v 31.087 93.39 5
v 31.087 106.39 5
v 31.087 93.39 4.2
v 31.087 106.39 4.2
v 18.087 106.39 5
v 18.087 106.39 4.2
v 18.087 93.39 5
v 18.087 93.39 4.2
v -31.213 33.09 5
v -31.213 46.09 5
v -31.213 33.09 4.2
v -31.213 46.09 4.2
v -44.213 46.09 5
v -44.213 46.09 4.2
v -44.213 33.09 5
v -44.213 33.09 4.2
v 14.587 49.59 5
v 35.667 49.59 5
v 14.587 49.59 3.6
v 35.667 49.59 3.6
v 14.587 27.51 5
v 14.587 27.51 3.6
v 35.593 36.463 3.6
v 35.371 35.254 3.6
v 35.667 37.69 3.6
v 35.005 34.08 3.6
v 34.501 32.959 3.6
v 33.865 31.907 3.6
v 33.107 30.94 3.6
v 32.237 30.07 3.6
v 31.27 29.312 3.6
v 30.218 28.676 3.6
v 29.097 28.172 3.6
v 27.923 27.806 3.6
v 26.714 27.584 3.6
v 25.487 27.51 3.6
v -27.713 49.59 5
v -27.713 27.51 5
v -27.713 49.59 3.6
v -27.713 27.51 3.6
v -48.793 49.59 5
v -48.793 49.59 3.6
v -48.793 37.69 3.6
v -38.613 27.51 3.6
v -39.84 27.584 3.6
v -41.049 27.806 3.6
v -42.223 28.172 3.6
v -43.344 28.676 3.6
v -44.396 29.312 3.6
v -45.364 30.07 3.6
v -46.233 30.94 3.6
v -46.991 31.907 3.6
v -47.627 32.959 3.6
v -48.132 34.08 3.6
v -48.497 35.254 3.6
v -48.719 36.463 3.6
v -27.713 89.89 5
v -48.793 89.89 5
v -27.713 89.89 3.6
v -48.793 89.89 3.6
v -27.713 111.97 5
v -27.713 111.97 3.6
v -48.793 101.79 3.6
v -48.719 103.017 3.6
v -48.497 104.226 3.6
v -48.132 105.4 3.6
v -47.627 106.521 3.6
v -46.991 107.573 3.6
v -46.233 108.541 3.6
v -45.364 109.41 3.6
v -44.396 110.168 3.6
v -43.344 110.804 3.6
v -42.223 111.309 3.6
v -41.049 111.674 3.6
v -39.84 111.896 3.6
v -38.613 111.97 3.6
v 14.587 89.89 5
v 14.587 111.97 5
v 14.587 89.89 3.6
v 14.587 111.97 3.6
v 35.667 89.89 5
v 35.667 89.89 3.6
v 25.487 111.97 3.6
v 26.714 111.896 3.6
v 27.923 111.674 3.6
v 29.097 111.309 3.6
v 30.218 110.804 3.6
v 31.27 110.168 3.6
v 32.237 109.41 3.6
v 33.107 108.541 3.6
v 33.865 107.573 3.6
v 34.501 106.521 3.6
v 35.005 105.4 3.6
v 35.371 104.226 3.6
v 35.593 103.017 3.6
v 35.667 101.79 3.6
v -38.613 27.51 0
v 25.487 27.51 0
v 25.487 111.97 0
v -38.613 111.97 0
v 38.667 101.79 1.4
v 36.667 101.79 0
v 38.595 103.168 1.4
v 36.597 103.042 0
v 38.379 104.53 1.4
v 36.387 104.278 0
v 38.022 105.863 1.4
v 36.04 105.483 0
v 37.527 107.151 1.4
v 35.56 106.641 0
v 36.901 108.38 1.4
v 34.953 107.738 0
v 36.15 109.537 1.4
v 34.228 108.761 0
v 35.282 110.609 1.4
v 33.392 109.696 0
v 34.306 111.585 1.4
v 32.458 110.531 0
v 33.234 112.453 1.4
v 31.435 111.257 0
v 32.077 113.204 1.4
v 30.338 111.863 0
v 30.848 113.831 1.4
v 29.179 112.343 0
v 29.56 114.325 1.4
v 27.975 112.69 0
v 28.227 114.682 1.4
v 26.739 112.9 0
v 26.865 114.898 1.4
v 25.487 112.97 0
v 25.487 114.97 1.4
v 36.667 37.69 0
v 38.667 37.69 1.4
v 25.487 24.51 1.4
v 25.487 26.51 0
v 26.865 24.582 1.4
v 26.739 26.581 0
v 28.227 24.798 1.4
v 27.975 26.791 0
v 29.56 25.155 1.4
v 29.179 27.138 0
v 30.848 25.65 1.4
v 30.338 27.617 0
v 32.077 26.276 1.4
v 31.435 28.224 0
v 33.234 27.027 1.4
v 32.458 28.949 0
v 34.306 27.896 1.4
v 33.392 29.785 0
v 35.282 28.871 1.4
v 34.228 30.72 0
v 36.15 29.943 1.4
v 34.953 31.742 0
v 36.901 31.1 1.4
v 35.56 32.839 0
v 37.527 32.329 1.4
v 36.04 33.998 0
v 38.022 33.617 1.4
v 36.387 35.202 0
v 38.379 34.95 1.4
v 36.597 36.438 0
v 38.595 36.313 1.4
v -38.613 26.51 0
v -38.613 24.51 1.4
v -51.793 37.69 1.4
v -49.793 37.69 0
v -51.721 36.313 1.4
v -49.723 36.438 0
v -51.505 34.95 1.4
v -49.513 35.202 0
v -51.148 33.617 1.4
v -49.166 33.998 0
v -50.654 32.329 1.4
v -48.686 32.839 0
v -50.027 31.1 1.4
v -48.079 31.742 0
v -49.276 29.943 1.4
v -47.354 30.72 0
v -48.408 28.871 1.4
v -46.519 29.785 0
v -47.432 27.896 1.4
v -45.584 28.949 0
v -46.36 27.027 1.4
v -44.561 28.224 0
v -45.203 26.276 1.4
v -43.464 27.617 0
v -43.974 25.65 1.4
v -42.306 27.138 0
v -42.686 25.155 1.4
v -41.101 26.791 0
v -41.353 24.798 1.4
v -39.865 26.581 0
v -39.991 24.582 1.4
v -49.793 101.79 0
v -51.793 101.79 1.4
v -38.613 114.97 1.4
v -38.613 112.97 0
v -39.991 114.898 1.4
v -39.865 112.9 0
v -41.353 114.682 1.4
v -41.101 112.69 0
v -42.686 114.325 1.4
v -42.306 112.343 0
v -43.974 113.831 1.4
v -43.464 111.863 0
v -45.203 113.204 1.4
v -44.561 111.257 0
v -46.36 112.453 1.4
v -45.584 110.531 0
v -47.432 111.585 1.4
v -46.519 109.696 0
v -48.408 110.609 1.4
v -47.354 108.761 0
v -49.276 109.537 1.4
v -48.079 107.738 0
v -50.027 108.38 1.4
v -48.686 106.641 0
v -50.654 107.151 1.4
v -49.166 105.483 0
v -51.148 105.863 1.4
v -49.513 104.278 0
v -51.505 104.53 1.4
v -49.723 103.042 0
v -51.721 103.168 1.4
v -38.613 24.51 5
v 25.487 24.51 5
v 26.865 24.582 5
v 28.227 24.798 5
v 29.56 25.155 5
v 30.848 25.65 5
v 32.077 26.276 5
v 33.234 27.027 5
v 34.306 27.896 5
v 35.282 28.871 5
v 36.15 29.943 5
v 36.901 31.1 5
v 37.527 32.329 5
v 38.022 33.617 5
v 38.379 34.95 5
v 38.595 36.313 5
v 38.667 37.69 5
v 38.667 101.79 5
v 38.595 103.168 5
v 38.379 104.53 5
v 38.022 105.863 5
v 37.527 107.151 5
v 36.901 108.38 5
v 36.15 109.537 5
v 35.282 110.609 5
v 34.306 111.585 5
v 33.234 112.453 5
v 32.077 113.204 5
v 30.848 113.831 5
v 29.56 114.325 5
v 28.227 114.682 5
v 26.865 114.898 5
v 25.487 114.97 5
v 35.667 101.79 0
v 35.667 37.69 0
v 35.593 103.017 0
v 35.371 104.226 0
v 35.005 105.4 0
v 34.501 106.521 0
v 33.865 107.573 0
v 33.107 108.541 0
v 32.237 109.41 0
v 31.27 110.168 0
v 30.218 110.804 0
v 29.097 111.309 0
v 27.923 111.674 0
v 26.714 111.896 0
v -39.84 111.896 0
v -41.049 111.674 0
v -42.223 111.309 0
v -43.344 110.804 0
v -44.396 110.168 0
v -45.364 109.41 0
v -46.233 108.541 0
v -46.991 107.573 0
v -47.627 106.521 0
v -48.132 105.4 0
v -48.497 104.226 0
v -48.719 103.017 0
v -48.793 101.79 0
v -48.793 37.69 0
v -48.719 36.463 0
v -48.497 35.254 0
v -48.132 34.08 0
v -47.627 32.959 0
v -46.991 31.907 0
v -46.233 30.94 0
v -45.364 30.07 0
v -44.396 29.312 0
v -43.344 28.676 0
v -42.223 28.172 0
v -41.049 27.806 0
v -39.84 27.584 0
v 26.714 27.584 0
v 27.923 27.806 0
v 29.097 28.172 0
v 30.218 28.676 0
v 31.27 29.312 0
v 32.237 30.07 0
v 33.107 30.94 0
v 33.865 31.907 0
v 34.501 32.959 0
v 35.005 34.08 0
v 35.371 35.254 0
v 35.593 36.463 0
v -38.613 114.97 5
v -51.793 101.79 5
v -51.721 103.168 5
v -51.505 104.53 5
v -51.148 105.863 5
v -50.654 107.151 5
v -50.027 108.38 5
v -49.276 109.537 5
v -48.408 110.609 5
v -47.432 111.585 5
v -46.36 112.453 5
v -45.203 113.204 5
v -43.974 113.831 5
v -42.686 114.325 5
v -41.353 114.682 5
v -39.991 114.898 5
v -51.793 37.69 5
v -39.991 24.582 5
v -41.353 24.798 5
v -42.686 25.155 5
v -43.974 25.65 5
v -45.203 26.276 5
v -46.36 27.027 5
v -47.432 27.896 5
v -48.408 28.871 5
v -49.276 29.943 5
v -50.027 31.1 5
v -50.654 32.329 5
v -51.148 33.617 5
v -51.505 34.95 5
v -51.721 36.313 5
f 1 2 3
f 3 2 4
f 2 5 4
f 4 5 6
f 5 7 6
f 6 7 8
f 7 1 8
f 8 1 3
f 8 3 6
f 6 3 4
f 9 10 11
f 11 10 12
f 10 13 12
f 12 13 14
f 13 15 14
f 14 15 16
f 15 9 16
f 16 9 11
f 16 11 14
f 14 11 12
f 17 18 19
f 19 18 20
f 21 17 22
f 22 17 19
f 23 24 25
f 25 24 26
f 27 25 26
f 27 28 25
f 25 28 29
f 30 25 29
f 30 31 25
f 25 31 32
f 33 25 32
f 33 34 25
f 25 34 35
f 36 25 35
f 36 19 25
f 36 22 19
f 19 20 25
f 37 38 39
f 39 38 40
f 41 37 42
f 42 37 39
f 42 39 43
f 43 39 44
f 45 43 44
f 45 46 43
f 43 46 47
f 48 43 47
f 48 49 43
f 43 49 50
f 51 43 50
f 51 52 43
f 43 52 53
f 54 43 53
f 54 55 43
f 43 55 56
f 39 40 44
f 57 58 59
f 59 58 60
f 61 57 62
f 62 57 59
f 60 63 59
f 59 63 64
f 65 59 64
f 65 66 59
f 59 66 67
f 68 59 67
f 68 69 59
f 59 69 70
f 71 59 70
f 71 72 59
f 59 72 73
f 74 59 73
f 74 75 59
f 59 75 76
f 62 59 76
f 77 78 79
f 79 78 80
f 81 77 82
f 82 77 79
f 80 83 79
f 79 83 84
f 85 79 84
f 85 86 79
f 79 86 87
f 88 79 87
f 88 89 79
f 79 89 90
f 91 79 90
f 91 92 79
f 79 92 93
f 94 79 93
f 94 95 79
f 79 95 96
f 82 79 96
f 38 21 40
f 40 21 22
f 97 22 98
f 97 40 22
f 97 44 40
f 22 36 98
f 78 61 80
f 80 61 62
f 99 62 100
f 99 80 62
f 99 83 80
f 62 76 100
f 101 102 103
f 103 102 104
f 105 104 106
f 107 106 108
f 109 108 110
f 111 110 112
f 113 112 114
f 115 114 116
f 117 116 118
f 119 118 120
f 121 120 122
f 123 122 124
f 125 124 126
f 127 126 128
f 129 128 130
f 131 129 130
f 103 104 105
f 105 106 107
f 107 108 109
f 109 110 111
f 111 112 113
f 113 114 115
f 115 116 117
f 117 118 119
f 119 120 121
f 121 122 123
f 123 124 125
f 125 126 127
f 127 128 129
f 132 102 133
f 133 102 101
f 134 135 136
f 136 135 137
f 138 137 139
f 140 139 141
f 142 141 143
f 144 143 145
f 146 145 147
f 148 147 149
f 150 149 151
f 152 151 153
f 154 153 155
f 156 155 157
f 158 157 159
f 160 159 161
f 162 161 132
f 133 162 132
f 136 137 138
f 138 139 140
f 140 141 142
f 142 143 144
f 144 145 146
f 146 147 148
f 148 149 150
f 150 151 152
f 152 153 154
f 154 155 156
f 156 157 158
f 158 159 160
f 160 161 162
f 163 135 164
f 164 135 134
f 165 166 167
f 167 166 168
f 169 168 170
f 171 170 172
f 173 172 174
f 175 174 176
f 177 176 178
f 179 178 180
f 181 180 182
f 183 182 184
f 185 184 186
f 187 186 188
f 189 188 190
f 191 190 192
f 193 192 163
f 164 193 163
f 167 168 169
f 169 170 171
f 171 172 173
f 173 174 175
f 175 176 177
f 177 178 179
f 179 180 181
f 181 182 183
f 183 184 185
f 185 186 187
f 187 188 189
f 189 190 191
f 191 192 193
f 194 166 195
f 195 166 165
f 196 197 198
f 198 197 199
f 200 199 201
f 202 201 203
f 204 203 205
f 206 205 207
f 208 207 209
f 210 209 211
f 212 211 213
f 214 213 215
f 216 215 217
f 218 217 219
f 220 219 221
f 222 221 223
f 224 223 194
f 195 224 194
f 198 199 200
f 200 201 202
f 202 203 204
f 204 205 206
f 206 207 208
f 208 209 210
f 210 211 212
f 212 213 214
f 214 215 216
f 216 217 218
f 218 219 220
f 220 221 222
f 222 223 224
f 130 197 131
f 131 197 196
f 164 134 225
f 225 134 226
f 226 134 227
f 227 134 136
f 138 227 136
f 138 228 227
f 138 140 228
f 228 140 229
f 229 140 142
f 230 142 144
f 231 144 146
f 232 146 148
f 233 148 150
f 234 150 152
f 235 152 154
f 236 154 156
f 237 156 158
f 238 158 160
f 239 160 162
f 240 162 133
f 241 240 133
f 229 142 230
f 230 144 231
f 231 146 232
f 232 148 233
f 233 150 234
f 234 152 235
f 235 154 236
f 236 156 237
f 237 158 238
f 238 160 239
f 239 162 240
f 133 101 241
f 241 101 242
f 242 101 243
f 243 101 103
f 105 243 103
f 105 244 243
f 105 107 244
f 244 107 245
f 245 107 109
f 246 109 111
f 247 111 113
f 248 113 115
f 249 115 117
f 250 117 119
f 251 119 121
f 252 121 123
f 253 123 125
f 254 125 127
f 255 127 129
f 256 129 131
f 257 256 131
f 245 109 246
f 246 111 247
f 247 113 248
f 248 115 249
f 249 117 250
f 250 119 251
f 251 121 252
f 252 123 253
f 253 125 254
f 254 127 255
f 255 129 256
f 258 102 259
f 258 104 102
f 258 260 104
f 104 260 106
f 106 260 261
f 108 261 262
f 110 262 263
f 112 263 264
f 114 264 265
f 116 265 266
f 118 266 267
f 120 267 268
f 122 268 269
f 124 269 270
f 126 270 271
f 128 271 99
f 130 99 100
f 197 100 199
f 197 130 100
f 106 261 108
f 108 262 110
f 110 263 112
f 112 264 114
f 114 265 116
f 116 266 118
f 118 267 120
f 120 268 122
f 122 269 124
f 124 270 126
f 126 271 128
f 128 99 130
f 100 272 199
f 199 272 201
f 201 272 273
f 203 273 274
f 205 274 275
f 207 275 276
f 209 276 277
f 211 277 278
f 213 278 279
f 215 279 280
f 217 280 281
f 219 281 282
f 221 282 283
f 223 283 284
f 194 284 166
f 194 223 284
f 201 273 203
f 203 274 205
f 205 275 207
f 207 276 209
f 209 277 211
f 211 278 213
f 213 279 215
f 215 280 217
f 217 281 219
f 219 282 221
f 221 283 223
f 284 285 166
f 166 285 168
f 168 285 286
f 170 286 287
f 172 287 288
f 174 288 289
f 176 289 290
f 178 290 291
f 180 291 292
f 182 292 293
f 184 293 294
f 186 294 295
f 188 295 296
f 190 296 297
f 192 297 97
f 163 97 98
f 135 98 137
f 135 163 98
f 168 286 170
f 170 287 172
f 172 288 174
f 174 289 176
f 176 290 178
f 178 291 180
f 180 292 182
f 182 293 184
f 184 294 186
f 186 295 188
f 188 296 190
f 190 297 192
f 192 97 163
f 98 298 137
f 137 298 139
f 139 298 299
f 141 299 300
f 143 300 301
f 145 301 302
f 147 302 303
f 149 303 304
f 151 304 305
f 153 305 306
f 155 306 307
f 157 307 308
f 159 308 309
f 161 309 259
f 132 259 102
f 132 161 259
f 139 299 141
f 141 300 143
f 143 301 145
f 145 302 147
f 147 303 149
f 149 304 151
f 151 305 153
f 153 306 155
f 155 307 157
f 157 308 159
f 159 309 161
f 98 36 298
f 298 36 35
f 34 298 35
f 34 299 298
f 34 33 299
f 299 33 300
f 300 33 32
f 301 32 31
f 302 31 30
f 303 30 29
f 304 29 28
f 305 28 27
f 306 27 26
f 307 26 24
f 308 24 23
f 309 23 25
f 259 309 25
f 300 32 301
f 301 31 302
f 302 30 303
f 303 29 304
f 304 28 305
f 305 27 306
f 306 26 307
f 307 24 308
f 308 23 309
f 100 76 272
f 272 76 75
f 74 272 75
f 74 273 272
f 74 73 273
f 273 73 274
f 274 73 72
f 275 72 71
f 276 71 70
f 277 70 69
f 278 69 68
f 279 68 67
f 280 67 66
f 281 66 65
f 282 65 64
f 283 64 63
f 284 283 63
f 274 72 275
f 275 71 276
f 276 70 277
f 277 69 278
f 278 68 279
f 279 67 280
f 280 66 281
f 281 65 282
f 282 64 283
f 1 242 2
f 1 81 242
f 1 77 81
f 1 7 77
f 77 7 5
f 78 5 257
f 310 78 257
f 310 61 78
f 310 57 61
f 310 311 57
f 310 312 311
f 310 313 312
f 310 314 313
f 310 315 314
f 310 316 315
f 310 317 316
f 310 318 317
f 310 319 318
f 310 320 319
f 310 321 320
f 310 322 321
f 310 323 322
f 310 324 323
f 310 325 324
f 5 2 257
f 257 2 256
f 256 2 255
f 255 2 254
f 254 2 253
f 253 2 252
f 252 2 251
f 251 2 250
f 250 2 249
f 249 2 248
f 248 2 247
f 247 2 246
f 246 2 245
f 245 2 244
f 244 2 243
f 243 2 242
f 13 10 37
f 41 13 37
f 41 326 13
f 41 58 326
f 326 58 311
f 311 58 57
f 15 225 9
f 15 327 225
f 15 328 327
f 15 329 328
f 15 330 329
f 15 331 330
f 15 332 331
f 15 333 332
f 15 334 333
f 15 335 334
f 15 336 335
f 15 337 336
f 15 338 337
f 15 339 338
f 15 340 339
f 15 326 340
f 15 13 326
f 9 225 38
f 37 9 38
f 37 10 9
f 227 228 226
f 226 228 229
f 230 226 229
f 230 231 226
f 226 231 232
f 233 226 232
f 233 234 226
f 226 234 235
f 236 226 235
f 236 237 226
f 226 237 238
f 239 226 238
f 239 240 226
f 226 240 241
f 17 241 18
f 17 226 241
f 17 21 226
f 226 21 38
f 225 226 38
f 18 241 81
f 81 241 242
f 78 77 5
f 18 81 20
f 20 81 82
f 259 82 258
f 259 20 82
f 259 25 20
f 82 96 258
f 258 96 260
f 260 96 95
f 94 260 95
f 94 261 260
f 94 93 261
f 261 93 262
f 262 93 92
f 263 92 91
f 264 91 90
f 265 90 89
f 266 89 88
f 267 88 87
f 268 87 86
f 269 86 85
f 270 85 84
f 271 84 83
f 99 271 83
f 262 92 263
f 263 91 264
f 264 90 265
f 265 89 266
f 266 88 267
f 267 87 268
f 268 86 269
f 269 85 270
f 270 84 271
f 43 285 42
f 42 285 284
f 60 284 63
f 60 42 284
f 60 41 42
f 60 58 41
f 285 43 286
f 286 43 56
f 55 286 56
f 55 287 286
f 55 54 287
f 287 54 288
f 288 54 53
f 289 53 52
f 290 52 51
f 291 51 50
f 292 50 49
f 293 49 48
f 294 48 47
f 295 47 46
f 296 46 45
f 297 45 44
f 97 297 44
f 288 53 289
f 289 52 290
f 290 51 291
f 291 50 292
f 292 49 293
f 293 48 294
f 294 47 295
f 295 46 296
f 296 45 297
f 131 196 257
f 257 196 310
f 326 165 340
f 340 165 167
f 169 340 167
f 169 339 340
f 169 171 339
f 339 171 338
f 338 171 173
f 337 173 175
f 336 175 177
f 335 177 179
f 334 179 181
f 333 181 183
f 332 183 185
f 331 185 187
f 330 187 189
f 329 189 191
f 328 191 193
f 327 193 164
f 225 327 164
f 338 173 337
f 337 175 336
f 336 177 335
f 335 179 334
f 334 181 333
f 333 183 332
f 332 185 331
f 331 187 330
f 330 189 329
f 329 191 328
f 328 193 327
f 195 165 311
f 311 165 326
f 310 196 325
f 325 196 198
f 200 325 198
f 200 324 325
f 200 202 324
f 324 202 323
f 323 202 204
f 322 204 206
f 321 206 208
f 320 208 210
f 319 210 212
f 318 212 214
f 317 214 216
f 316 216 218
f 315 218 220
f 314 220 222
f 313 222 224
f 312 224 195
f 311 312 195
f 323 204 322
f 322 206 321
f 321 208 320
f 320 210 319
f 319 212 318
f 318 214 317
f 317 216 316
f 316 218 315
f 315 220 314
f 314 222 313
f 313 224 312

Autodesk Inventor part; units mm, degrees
ref_plane "YZ Plane" through (0, 0, 0) normal (1, 0, 0) x (0, 1, 0)
ref_plane "XZ Plane" through (0, 0, 0) normal (0, 1, 0) x (-1, 0, 0)
ref_plane "XY Plane" through (0, 0, 0) normal (0, 0, 1) x (1, 0, 0)
sketch "Skizze1" plane through (0, 0, 0) normal (0, 0, 1) x (1, 0, 0)
  line L0 (32.9869, 99.2902) -> (32.9869, 40.1902) construction
  arc A0 (22.9869, 30.1902) -> (32.9869, 40.1902) centre (22.9869, 40.1902) ccw construction
  line L1 (22.9869, 30.1902) -> (-36.1131, 30.1902) construction
  arc A1 (-46.1131, 40.1902) -> (-36.1131, 30.1902) centre (-36.1131, 40.1902) ccw construction
  line L2 (-46.1131, 40.1902) -> (-46.1131, 99.2902) construction
  arc A2 (-36.1131, 109.2902) -> (-46.1131, 99.2902) centre (-36.1131, 99.2902) ccw construction
  line L3 (-36.1131, 109.2902) -> (22.9869, 109.2902) construction
  arc A3 (32.9869, 99.2902) -> (22.9869, 109.2902) centre (22.9869, 99.2902) ccw construction
  arc A4 (-38.6131, 111.7902) -> (-48.6131, 101.7902) centre (-38.6131, 101.7902) ccw construction
  line L4 (-48.6131, 101.7902) -> (-48.6131, 37.6902) construction
  arc A5 (-48.6131, 37.6902) -> (-38.6131, 27.6902) centre (-38.6131, 37.6902) ccw construction
  line L5 (-38.6131, 27.6902) -> (25.4869, 27.6902) construction
  arc A6 (25.4869, 27.6902) -> (35.4869, 37.6902) centre (25.4869, 37.6902) ccw construction
  line L6 (35.4869, 37.6902) -> (35.4869, 101.7902) construction
  arc A7 (35.4869, 101.7902) -> (25.4869, 111.7902) centre (25.4869, 101.7902) ccw construction
  line L7 (25.4869, 111.7902) -> (-38.6131, 111.7902) construction
  arc A8 (-38.6131, 111.9702) -> (-48.7931, 101.7902) centre (-38.6131, 101.7902) ccw
  line L8 (-48.7931, 101.7902) -> (-48.7931, 37.6902)
  arc A9 (-48.7931, 37.6902) -> (-38.6131, 27.5102) centre (-38.6131, 37.6902) ccw
  line L9 (-38.6131, 27.5102) -> (25.4869, 27.5102)
  arc A10 (25.4869, 27.5102) -> (35.6669, 37.6902) centre (25.4869, 37.6902) ccw
  line L10 (35.6669, 37.6902) -> (35.6669, 101.7902)
  arc A11 (35.6669, 101.7902) -> (25.4869, 111.9702) centre (25.4869, 101.7902) ccw
  line L11 (25.4869, 111.9702) -> (-38.6131, 111.9702)
  arc A12 (-38.6131, 114.9702) -> (-51.7931, 101.7902) centre (-38.6131, 101.7902) ccw
  line L12 (-38.6131, 114.9702) -> (25.4869, 114.9702)
  arc A13 (38.6669, 101.7902) -> (25.4869, 114.9702) centre (25.4869, 101.7902) ccw
  line L13 (38.6669, 101.7902) -> (38.6669, 37.6902)
  arc A14 (25.4869, 24.5102) -> (38.6669, 37.6902) centre (25.4869, 37.6902) ccw
  line L14 (25.4869, 24.5102) -> (-38.6131, 24.5102)
  arc A15 (-51.7931, 37.6902) -> (-38.6131, 24.5102) centre (-38.6131, 37.6902) ccw
  line L15 (-51.7931, 37.6902) -> (-51.7931, 101.7902)
  line L16 (12.5869, 111.9702) -> (12.5869, 87.8902)
  line L17 (12.5869, 87.8902) -> (35.6669, 87.8902)
  circle A16 centre (24.5869, 99.8902) radius 5.075 construction
  circle A17 centre (-37.7131, 39.5902) radius 5.075 construction
  line L18 (-48.7931, 51.5902) -> (-25.7131, 51.5902)
  line L19 (-25.7131, 51.5902) -> (-25.7131, 27.5102)
  point P0 (0, 0)
  dimension "d0" = 0.18
  dimension "d1" = 3
  dimension "d2" = 12
  dimension "d3" = 12
  dimension "d4" = 12
  dimension "d5" = 12
extrude "Extrusion1" add sketch "Skizze1" along normal blind 5
chamfer "Fase1" distance 2 angle 35 8 edges at (34.8066, 111.1099, 0) (38.6669, 69.7402, 0) (34.8066, 28.3705, 0) (-6.5631, 24.5102, 0) (-47.9328, 28.3705, 0) (-51.7931, 69.7402, 0) (-47.9328, 111.1099, 0) (-6.5631, 114.9702, 0) measured on face at (-12.9464, 25.5102, 0)
sketch "Skizze2" plane through (0, 0, 5) normal (0, 0, 1) x (1, 0, 0)
  circle A0 centre (-37.7131, 39.5902) radius 5.075 construction
  circle A1 centre (24.5869, 99.8902) radius 5.075 construction
  line L0 (-48.7931, 37.6902) -> (-48.7931, 101.7902) projected
  line L1 (-48.7931, 49.5902) -> (-27.7131, 49.5902)
  line L2 (-27.7131, 49.5902) -> (-27.7131, 27.5102)
  line L3 (-38.6131, 27.5102) -> (25.4869, 27.5102) projected
  arc A2 (-48.7931, 37.6902) -> (-38.6131, 27.5102) centre (-38.6131, 37.6902) ccw projected
  line L4 (35.6669, 101.7902) -> (35.6669, 37.6902) projected
  arc A3 (35.6669, 101.7902) -> (25.4869, 111.9702) centre (25.4869, 101.7902) ccw projected
  line L5 (-38.6131, 111.9702) -> (25.4869, 111.9702) projected
  line L6 (25.4869, 111.9702) -> (-38.6131, 111.9702) projected
  line L7 (14.5869, 111.9702) -> (14.5869, 89.8902)
  line L8 (14.5869, 89.8902) -> (35.6669, 89.8902)
  arc A4 (-38.6131, 111.9702) -> (-48.7931, 101.7902) centre (-38.6131, 101.7902) ccw projected
  arc A5 (25.4869, 27.5102) -> (35.6669, 37.6902) centre (25.4869, 37.6902) ccw projected
  line L9 (14.5869, 27.5102) -> (14.5869, 49.5902)
  line L10 (14.5869, 49.5902) -> (35.6669, 49.5902)
  line L11 (35.6669, 37.6902) -> (35.6669, 101.7902) projected
  line L12 (-48.7931, 89.8902) -> (-27.7131, 89.8902)
  line L13 (-27.7131, 89.8902) -> (-27.7131, 111.9702)
  point P0 (0, 0)
  dimension "d11" = 10
  dimension "d12" = 10
  dimension "d13" = 10
  dimension "d14" = 10
extrude "Extrusion2" add sketch "Skizze2" against normal blind 1.4 contours L0 L1 L2 L3 A2 | L0 A4 L5 L13 L12 | L9 L10 L4 A5 L3 | L5 A3 L4 L8 L7
sketch "Skizze3" plane through (0, 0, 5) normal (0, 0, 1) x (1, 0, 0)
  circle A0 centre (-37.7131, 39.5902) radius 5.075 construction
  circle A1 centre (24.5869, 99.8902) radius 4.075 construction
  line L0 (18.0869, 93.3902) -> (31.0869, 93.3902)
  line L1 (31.0869, 93.3902) -> (31.0869, 106.3902)
  line L2 (31.0869, 106.3902) -> (18.0869, 106.3902)
  line L3 (18.0869, 106.3902) -> (18.0869, 93.3902)
  line L4 (18.0869, 93.3902) -> (31.0869, 106.3902) construction
  line L5 (31.0869, 93.3902) -> (18.0869, 106.3902) construction
  line L6 (-44.2131, 33.0902) -> (-31.2131, 33.0902)
  line L7 (-31.2131, 33.0902) -> (-31.2131, 46.0902)
  line L8 (-31.2131, 46.0902) -> (-44.2131, 46.0902)
  line L9 (-44.2131, 46.0902) -> (-44.2131, 33.0902)
  line L10 (-44.2131, 33.0902) -> (-31.2131, 46.0902) construction
  line L11 (-31.2131, 33.0902) -> (-44.2131, 46.0902) construction
  point P0 (0, 0)
  dimension "d17" = 13
  dimension "d18" = 13
  dimension "d19" = 13
  dimension "d20" = 13
extrude "Extrusion3" cut sketch "Skizze3" against normal blind 0.8
equation "\"d2\" = d3"
equation "\"d4\" = d3"
equation "\"d5\" = d4"
properties part number "Wandhalterung"
